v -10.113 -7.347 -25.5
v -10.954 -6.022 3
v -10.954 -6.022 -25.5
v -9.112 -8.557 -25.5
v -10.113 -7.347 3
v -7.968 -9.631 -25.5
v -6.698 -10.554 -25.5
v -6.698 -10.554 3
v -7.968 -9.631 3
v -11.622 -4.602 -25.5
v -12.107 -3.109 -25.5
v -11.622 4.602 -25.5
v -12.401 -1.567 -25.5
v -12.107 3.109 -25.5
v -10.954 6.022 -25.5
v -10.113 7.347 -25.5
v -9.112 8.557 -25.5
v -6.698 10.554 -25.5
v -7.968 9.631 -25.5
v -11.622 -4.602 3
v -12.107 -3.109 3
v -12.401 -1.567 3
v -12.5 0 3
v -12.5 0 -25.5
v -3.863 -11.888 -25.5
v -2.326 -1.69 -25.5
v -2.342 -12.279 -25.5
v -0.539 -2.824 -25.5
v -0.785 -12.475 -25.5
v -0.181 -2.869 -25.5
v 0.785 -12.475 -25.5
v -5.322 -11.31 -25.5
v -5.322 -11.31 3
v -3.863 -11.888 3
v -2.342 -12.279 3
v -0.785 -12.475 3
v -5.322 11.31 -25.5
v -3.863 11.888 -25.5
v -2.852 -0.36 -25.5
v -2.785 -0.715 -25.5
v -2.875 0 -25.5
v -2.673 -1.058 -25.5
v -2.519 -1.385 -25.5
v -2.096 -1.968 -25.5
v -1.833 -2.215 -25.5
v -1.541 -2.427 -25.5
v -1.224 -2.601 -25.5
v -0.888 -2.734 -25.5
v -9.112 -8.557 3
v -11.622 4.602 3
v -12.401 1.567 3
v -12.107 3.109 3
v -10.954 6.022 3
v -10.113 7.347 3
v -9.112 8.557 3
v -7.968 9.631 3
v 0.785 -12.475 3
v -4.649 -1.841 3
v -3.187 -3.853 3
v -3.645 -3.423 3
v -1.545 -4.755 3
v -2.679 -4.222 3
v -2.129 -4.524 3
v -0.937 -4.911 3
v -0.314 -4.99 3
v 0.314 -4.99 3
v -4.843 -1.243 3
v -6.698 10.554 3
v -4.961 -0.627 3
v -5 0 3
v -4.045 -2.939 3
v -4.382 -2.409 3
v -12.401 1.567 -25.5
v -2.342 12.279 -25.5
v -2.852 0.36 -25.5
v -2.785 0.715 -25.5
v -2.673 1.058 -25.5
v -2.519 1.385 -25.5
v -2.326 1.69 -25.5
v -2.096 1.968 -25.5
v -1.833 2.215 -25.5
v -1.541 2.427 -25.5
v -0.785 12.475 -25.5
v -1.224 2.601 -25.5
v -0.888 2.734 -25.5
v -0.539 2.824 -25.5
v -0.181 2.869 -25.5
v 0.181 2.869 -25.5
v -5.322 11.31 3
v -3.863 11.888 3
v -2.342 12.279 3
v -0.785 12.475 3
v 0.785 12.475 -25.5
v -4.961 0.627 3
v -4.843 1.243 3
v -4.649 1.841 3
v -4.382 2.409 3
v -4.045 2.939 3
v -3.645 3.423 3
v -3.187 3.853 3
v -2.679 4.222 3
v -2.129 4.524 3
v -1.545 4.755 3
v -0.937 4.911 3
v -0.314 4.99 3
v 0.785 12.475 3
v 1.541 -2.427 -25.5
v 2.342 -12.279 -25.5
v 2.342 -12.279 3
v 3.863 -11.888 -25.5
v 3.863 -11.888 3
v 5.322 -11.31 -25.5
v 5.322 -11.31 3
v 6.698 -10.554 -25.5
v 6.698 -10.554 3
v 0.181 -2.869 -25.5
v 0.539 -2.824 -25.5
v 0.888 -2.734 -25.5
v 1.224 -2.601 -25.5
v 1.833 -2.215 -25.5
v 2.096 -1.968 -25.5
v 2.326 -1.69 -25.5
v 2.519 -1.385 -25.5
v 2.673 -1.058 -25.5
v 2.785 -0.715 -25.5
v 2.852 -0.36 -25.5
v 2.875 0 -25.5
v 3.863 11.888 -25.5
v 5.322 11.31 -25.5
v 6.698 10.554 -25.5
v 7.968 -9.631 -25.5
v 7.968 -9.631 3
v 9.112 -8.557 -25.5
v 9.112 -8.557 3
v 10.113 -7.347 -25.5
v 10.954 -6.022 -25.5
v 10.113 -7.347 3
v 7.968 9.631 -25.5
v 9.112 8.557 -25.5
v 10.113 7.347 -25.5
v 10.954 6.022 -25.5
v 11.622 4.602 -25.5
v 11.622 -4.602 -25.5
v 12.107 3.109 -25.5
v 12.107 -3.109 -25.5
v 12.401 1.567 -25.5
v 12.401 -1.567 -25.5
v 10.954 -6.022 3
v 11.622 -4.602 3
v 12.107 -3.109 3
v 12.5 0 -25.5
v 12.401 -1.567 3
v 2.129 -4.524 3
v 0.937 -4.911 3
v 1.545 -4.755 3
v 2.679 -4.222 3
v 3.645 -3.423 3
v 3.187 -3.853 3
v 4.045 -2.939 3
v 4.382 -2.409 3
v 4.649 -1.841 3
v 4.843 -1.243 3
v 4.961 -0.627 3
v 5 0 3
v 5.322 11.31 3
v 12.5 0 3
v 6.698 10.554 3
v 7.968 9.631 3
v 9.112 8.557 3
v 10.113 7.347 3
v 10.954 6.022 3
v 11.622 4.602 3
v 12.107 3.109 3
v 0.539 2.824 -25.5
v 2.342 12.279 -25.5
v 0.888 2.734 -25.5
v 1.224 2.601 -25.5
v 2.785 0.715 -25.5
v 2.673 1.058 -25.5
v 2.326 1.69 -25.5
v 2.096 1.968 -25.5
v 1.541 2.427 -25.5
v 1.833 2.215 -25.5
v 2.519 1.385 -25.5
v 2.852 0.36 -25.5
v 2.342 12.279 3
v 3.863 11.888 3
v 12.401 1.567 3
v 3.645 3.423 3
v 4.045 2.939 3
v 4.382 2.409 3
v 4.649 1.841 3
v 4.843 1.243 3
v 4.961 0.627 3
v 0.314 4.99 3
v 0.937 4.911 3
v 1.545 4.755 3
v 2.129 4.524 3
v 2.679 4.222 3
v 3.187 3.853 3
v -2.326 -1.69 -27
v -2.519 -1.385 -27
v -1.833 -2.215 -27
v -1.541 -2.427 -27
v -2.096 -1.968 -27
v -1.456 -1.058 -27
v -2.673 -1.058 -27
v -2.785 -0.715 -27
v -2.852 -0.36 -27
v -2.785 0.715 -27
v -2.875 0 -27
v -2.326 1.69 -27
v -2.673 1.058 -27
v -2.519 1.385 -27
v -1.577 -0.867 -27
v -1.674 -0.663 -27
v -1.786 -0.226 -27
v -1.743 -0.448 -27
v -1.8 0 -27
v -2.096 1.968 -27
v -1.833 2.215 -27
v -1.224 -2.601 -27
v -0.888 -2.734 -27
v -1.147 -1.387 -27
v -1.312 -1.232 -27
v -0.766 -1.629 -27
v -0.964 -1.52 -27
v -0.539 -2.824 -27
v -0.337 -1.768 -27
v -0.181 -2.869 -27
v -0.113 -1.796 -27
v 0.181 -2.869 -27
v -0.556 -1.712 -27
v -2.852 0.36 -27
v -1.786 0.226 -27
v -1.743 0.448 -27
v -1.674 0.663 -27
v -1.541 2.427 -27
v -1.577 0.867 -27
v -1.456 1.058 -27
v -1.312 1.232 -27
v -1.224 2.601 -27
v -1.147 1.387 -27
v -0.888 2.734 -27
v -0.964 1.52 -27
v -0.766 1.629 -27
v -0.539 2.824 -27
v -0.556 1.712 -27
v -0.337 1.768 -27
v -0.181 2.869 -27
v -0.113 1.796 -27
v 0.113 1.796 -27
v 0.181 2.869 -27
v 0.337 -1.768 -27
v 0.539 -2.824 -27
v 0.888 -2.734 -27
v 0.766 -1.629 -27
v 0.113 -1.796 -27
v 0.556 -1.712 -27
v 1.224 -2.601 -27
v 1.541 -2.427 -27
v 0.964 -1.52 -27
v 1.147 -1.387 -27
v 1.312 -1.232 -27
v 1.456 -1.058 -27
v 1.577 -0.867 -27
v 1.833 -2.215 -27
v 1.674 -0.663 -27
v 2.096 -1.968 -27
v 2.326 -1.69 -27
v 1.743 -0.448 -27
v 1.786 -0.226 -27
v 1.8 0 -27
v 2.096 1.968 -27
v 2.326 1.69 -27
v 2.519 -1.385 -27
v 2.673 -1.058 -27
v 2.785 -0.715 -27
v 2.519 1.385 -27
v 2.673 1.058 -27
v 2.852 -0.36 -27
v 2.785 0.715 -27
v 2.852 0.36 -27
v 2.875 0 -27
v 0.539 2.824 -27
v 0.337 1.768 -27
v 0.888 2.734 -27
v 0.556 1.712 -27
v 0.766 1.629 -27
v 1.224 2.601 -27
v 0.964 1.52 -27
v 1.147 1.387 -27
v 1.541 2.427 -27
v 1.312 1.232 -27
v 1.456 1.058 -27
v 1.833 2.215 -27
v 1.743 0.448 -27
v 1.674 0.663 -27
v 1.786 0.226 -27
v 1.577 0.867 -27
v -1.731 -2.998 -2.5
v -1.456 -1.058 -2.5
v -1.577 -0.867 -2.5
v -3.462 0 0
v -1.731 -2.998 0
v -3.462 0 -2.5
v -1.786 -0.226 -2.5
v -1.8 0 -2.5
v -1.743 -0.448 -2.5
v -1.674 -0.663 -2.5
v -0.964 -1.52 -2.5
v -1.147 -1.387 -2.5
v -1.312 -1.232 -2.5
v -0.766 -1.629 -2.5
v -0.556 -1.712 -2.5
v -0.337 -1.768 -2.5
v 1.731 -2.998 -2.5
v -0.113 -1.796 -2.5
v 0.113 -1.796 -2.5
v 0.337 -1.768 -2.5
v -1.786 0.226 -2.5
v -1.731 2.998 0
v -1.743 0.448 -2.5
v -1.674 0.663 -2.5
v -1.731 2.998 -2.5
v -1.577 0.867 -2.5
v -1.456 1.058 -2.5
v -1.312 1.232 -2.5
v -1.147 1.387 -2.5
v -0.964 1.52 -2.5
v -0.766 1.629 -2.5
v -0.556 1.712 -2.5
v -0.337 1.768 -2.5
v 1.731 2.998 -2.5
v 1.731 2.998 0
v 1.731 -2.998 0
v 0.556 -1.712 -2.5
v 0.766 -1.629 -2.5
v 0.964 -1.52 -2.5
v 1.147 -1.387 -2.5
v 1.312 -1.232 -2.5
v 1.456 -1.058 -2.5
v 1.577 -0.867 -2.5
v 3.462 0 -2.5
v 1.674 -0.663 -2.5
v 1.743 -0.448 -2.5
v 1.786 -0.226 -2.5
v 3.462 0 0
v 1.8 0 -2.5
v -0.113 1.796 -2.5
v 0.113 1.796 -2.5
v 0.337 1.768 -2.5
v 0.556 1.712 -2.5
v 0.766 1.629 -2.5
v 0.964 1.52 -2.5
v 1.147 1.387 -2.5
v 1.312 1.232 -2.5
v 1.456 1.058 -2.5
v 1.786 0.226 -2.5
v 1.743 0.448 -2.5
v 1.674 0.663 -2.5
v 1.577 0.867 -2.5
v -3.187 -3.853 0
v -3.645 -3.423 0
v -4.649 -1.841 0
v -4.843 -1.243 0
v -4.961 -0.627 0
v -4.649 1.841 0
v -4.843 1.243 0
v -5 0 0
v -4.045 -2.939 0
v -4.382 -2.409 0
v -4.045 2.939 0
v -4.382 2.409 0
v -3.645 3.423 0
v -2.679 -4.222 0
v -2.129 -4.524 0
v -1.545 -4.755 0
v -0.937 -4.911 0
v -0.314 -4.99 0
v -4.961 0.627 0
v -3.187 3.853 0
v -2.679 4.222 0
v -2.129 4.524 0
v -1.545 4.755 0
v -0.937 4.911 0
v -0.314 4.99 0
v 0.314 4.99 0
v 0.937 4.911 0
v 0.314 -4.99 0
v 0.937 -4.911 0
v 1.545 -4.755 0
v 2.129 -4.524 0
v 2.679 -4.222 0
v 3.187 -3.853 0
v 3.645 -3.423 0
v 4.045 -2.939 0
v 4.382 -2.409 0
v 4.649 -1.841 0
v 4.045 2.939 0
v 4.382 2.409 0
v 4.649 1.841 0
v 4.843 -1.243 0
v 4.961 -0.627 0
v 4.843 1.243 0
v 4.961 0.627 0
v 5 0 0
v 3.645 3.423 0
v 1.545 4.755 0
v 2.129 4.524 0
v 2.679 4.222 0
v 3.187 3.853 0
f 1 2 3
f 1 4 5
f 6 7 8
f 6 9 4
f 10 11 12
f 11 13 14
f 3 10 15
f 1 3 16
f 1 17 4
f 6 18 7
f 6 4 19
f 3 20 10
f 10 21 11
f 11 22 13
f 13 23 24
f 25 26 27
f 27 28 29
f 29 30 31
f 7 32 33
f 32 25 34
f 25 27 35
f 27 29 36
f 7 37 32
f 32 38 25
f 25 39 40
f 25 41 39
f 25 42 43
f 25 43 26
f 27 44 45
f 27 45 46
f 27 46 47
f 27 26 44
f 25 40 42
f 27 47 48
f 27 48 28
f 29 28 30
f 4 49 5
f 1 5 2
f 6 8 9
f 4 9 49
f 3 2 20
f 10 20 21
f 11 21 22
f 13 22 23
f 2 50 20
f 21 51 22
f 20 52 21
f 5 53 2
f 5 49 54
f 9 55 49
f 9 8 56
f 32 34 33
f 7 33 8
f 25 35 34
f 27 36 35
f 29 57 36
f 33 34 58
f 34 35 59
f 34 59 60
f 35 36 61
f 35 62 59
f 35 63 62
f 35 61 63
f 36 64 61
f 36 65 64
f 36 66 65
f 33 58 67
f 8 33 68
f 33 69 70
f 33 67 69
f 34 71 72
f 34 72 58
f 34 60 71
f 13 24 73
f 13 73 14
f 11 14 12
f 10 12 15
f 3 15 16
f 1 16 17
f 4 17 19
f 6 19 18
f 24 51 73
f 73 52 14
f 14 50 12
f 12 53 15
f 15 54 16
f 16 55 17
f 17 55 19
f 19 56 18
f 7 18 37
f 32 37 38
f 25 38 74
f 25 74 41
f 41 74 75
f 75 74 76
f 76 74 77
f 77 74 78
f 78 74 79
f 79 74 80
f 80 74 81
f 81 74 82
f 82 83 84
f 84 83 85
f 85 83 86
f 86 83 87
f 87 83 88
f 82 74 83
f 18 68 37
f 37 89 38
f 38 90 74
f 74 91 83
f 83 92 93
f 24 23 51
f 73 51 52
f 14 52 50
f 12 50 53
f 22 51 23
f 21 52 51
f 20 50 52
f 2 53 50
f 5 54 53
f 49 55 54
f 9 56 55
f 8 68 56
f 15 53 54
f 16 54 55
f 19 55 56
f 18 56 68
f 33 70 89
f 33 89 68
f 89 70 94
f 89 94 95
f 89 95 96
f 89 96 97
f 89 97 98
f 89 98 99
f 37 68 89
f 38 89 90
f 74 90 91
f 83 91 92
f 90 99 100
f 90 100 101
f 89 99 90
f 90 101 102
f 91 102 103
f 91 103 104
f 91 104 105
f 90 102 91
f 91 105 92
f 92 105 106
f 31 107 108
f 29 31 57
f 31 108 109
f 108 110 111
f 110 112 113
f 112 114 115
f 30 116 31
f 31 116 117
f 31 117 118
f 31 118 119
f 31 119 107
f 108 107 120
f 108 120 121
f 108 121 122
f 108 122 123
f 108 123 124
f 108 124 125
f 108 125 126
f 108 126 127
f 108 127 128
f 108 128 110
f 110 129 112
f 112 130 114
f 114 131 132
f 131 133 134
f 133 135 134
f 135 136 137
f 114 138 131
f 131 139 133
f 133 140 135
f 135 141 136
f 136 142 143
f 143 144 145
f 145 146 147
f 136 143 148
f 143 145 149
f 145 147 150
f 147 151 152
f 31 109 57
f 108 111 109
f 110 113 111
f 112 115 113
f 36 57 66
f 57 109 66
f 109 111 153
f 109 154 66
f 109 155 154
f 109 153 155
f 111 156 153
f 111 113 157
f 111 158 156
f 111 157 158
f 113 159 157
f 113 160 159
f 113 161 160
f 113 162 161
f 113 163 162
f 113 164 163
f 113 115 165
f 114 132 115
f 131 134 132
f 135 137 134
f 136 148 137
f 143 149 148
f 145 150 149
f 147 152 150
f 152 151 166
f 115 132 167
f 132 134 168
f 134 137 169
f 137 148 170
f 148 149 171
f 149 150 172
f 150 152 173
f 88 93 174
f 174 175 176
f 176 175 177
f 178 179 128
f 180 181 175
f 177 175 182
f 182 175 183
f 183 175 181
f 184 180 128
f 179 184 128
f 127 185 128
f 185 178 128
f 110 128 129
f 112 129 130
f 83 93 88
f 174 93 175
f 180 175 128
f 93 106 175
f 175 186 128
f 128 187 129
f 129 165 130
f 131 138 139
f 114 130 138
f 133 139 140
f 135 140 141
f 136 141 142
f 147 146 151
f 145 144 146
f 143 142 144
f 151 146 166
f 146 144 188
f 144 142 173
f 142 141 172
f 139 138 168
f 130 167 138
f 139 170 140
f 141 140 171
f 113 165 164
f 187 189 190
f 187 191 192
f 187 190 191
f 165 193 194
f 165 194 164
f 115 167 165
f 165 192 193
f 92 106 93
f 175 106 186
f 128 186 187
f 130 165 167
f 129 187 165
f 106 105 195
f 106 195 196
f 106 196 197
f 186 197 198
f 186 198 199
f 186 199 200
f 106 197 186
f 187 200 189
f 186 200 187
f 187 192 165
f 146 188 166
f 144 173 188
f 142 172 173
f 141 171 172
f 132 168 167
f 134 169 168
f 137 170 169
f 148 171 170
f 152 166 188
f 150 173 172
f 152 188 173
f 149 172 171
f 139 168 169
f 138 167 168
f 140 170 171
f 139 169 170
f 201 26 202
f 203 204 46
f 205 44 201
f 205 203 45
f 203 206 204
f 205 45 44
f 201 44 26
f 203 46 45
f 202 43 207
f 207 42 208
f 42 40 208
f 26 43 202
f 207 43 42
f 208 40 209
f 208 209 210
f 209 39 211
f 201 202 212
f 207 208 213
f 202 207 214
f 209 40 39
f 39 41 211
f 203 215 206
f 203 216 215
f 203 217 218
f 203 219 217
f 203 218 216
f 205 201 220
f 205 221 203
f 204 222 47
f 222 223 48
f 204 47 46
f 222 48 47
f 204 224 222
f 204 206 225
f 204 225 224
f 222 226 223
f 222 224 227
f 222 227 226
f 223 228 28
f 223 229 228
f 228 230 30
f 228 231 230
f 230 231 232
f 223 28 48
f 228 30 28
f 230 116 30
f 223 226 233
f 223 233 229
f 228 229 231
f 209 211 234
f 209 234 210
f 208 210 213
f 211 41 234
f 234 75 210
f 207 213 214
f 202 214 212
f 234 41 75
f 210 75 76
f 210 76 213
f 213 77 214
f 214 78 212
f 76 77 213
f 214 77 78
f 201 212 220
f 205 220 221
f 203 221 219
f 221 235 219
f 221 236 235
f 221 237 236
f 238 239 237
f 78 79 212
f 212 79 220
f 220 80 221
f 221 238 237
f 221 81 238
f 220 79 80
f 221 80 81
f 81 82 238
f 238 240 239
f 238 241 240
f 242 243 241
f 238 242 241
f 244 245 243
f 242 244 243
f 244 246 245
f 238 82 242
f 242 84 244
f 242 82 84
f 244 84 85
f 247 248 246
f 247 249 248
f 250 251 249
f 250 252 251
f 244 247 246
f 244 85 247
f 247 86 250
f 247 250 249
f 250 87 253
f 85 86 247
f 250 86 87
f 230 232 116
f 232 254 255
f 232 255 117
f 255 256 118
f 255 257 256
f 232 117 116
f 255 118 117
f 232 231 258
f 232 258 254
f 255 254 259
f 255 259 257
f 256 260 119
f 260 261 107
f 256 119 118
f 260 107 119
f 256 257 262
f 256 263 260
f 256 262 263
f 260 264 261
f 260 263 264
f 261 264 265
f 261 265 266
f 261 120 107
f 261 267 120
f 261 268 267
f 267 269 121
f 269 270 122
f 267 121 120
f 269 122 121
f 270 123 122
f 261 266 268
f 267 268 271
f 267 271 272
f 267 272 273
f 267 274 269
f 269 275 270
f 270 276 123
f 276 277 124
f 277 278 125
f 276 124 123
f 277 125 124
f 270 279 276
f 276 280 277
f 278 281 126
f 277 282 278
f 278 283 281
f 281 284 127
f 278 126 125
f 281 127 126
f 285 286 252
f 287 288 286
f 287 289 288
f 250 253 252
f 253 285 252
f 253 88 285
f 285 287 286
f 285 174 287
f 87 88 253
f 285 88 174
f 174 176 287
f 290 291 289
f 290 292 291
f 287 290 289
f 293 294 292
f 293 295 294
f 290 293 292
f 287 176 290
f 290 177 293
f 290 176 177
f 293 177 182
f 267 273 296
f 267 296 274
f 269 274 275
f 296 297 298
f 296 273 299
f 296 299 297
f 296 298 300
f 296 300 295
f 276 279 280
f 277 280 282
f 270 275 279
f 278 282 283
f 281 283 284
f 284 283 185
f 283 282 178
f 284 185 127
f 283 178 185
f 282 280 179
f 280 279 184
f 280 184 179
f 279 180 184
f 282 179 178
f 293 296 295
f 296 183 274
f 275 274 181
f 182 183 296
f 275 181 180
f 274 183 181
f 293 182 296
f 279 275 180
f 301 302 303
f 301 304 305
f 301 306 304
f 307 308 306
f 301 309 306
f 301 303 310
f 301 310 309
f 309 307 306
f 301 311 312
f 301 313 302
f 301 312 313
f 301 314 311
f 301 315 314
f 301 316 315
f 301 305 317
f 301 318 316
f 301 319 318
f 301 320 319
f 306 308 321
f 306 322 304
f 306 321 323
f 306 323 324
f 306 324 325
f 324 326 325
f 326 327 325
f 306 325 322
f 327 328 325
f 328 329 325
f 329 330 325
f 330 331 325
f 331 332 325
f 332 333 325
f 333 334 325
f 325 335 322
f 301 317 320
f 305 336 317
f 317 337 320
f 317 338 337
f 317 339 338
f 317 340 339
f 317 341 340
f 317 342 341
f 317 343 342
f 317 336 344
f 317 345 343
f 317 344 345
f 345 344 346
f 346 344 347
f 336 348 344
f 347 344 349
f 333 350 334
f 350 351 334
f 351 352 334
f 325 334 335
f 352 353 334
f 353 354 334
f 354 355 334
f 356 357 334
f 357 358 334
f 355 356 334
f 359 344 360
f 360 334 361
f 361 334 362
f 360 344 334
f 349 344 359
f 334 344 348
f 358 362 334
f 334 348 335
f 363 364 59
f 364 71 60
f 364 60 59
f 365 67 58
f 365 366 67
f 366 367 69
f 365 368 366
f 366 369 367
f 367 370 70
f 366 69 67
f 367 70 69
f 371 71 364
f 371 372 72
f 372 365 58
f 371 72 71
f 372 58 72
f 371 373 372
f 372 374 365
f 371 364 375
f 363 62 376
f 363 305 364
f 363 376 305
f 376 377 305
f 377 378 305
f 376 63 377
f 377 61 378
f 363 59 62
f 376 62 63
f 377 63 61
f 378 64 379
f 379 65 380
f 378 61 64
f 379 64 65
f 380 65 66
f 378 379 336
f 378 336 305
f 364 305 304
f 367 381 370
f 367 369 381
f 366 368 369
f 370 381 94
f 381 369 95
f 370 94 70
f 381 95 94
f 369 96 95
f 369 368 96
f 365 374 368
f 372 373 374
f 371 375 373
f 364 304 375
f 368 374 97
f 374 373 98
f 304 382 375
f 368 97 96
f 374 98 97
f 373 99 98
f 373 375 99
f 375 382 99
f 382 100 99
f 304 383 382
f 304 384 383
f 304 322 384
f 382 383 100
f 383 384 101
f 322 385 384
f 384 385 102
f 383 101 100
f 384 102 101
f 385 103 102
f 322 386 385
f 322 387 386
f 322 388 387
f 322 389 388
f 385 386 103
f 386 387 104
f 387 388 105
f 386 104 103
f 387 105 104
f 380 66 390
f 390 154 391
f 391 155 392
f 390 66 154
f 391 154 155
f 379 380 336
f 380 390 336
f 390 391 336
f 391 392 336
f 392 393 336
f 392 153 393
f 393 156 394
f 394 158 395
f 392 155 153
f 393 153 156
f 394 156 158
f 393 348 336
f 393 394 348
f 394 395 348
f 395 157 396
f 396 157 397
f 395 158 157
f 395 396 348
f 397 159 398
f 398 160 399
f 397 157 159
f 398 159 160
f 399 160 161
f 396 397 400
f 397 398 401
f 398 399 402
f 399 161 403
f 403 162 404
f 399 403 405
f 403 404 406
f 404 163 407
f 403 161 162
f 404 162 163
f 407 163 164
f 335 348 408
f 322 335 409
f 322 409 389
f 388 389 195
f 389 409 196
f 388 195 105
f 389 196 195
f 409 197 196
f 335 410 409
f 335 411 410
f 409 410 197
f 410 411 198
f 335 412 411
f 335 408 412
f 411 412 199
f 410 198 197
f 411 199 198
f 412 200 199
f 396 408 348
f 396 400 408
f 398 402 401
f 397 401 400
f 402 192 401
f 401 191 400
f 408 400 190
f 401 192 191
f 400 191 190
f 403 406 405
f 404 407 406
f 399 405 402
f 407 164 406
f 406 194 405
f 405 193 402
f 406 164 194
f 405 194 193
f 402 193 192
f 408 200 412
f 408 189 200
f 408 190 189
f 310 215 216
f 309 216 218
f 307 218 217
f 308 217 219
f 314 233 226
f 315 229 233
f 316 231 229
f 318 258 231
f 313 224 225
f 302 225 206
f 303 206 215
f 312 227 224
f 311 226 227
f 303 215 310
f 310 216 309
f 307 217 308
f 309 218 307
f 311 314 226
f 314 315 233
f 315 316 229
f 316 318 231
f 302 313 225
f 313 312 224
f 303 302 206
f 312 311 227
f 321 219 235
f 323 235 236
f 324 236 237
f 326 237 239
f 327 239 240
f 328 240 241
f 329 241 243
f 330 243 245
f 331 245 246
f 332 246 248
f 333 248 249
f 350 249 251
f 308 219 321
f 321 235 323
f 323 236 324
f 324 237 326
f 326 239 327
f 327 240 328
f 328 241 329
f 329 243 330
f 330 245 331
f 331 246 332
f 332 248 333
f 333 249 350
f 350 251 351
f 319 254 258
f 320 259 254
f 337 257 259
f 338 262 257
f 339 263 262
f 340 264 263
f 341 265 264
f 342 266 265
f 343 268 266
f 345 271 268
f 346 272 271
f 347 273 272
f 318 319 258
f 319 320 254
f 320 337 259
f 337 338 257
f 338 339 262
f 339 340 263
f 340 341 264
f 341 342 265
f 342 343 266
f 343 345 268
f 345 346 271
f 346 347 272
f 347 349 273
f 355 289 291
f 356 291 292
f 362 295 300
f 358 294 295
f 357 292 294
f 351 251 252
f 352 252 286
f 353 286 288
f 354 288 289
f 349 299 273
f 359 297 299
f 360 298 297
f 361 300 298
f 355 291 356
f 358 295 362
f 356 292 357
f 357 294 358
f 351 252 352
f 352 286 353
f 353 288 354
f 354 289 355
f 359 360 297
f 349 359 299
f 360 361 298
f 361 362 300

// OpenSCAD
$fn = 50;


difference() {
	union() {
		translate(v = [0, 0, -25.5000000000]) {
			cylinder(h = 28.5000000000, r = 12.5000000000);
		}
		#translate(v = [0, 0, -27.0000000000]) {
			cylinder(h = 27, r = 2.8750000000);
		}
	}
	union() {
		translate(v = [0, 0, 0]) {
			rotate(a = [0, 0, 0]) {
				difference() {
					union() {
						translate(v = [0, 0, -2.5000000000]) {
							linear_extrude(height = 2.5000000000) {
								polygon(points = [[3.4620000000, 0.0000000000], [1.7310000000, 2.9981799479], [-1.7310000000, 2.9981799479], [-3.4620000000, 0.0000000000], [-1.7310000000, -2.9981799479], [1.7310000000, -2.9981799479]]);
							}
						}
					}
					union();
				}
			}
		}
		#cylinder(h = 3, r = 5.0000000000);
		#translate(v = [0, 0, -100.0000000000]) {
			cylinder(h = 200, r = 1.8000000000);
		}
	}
}
